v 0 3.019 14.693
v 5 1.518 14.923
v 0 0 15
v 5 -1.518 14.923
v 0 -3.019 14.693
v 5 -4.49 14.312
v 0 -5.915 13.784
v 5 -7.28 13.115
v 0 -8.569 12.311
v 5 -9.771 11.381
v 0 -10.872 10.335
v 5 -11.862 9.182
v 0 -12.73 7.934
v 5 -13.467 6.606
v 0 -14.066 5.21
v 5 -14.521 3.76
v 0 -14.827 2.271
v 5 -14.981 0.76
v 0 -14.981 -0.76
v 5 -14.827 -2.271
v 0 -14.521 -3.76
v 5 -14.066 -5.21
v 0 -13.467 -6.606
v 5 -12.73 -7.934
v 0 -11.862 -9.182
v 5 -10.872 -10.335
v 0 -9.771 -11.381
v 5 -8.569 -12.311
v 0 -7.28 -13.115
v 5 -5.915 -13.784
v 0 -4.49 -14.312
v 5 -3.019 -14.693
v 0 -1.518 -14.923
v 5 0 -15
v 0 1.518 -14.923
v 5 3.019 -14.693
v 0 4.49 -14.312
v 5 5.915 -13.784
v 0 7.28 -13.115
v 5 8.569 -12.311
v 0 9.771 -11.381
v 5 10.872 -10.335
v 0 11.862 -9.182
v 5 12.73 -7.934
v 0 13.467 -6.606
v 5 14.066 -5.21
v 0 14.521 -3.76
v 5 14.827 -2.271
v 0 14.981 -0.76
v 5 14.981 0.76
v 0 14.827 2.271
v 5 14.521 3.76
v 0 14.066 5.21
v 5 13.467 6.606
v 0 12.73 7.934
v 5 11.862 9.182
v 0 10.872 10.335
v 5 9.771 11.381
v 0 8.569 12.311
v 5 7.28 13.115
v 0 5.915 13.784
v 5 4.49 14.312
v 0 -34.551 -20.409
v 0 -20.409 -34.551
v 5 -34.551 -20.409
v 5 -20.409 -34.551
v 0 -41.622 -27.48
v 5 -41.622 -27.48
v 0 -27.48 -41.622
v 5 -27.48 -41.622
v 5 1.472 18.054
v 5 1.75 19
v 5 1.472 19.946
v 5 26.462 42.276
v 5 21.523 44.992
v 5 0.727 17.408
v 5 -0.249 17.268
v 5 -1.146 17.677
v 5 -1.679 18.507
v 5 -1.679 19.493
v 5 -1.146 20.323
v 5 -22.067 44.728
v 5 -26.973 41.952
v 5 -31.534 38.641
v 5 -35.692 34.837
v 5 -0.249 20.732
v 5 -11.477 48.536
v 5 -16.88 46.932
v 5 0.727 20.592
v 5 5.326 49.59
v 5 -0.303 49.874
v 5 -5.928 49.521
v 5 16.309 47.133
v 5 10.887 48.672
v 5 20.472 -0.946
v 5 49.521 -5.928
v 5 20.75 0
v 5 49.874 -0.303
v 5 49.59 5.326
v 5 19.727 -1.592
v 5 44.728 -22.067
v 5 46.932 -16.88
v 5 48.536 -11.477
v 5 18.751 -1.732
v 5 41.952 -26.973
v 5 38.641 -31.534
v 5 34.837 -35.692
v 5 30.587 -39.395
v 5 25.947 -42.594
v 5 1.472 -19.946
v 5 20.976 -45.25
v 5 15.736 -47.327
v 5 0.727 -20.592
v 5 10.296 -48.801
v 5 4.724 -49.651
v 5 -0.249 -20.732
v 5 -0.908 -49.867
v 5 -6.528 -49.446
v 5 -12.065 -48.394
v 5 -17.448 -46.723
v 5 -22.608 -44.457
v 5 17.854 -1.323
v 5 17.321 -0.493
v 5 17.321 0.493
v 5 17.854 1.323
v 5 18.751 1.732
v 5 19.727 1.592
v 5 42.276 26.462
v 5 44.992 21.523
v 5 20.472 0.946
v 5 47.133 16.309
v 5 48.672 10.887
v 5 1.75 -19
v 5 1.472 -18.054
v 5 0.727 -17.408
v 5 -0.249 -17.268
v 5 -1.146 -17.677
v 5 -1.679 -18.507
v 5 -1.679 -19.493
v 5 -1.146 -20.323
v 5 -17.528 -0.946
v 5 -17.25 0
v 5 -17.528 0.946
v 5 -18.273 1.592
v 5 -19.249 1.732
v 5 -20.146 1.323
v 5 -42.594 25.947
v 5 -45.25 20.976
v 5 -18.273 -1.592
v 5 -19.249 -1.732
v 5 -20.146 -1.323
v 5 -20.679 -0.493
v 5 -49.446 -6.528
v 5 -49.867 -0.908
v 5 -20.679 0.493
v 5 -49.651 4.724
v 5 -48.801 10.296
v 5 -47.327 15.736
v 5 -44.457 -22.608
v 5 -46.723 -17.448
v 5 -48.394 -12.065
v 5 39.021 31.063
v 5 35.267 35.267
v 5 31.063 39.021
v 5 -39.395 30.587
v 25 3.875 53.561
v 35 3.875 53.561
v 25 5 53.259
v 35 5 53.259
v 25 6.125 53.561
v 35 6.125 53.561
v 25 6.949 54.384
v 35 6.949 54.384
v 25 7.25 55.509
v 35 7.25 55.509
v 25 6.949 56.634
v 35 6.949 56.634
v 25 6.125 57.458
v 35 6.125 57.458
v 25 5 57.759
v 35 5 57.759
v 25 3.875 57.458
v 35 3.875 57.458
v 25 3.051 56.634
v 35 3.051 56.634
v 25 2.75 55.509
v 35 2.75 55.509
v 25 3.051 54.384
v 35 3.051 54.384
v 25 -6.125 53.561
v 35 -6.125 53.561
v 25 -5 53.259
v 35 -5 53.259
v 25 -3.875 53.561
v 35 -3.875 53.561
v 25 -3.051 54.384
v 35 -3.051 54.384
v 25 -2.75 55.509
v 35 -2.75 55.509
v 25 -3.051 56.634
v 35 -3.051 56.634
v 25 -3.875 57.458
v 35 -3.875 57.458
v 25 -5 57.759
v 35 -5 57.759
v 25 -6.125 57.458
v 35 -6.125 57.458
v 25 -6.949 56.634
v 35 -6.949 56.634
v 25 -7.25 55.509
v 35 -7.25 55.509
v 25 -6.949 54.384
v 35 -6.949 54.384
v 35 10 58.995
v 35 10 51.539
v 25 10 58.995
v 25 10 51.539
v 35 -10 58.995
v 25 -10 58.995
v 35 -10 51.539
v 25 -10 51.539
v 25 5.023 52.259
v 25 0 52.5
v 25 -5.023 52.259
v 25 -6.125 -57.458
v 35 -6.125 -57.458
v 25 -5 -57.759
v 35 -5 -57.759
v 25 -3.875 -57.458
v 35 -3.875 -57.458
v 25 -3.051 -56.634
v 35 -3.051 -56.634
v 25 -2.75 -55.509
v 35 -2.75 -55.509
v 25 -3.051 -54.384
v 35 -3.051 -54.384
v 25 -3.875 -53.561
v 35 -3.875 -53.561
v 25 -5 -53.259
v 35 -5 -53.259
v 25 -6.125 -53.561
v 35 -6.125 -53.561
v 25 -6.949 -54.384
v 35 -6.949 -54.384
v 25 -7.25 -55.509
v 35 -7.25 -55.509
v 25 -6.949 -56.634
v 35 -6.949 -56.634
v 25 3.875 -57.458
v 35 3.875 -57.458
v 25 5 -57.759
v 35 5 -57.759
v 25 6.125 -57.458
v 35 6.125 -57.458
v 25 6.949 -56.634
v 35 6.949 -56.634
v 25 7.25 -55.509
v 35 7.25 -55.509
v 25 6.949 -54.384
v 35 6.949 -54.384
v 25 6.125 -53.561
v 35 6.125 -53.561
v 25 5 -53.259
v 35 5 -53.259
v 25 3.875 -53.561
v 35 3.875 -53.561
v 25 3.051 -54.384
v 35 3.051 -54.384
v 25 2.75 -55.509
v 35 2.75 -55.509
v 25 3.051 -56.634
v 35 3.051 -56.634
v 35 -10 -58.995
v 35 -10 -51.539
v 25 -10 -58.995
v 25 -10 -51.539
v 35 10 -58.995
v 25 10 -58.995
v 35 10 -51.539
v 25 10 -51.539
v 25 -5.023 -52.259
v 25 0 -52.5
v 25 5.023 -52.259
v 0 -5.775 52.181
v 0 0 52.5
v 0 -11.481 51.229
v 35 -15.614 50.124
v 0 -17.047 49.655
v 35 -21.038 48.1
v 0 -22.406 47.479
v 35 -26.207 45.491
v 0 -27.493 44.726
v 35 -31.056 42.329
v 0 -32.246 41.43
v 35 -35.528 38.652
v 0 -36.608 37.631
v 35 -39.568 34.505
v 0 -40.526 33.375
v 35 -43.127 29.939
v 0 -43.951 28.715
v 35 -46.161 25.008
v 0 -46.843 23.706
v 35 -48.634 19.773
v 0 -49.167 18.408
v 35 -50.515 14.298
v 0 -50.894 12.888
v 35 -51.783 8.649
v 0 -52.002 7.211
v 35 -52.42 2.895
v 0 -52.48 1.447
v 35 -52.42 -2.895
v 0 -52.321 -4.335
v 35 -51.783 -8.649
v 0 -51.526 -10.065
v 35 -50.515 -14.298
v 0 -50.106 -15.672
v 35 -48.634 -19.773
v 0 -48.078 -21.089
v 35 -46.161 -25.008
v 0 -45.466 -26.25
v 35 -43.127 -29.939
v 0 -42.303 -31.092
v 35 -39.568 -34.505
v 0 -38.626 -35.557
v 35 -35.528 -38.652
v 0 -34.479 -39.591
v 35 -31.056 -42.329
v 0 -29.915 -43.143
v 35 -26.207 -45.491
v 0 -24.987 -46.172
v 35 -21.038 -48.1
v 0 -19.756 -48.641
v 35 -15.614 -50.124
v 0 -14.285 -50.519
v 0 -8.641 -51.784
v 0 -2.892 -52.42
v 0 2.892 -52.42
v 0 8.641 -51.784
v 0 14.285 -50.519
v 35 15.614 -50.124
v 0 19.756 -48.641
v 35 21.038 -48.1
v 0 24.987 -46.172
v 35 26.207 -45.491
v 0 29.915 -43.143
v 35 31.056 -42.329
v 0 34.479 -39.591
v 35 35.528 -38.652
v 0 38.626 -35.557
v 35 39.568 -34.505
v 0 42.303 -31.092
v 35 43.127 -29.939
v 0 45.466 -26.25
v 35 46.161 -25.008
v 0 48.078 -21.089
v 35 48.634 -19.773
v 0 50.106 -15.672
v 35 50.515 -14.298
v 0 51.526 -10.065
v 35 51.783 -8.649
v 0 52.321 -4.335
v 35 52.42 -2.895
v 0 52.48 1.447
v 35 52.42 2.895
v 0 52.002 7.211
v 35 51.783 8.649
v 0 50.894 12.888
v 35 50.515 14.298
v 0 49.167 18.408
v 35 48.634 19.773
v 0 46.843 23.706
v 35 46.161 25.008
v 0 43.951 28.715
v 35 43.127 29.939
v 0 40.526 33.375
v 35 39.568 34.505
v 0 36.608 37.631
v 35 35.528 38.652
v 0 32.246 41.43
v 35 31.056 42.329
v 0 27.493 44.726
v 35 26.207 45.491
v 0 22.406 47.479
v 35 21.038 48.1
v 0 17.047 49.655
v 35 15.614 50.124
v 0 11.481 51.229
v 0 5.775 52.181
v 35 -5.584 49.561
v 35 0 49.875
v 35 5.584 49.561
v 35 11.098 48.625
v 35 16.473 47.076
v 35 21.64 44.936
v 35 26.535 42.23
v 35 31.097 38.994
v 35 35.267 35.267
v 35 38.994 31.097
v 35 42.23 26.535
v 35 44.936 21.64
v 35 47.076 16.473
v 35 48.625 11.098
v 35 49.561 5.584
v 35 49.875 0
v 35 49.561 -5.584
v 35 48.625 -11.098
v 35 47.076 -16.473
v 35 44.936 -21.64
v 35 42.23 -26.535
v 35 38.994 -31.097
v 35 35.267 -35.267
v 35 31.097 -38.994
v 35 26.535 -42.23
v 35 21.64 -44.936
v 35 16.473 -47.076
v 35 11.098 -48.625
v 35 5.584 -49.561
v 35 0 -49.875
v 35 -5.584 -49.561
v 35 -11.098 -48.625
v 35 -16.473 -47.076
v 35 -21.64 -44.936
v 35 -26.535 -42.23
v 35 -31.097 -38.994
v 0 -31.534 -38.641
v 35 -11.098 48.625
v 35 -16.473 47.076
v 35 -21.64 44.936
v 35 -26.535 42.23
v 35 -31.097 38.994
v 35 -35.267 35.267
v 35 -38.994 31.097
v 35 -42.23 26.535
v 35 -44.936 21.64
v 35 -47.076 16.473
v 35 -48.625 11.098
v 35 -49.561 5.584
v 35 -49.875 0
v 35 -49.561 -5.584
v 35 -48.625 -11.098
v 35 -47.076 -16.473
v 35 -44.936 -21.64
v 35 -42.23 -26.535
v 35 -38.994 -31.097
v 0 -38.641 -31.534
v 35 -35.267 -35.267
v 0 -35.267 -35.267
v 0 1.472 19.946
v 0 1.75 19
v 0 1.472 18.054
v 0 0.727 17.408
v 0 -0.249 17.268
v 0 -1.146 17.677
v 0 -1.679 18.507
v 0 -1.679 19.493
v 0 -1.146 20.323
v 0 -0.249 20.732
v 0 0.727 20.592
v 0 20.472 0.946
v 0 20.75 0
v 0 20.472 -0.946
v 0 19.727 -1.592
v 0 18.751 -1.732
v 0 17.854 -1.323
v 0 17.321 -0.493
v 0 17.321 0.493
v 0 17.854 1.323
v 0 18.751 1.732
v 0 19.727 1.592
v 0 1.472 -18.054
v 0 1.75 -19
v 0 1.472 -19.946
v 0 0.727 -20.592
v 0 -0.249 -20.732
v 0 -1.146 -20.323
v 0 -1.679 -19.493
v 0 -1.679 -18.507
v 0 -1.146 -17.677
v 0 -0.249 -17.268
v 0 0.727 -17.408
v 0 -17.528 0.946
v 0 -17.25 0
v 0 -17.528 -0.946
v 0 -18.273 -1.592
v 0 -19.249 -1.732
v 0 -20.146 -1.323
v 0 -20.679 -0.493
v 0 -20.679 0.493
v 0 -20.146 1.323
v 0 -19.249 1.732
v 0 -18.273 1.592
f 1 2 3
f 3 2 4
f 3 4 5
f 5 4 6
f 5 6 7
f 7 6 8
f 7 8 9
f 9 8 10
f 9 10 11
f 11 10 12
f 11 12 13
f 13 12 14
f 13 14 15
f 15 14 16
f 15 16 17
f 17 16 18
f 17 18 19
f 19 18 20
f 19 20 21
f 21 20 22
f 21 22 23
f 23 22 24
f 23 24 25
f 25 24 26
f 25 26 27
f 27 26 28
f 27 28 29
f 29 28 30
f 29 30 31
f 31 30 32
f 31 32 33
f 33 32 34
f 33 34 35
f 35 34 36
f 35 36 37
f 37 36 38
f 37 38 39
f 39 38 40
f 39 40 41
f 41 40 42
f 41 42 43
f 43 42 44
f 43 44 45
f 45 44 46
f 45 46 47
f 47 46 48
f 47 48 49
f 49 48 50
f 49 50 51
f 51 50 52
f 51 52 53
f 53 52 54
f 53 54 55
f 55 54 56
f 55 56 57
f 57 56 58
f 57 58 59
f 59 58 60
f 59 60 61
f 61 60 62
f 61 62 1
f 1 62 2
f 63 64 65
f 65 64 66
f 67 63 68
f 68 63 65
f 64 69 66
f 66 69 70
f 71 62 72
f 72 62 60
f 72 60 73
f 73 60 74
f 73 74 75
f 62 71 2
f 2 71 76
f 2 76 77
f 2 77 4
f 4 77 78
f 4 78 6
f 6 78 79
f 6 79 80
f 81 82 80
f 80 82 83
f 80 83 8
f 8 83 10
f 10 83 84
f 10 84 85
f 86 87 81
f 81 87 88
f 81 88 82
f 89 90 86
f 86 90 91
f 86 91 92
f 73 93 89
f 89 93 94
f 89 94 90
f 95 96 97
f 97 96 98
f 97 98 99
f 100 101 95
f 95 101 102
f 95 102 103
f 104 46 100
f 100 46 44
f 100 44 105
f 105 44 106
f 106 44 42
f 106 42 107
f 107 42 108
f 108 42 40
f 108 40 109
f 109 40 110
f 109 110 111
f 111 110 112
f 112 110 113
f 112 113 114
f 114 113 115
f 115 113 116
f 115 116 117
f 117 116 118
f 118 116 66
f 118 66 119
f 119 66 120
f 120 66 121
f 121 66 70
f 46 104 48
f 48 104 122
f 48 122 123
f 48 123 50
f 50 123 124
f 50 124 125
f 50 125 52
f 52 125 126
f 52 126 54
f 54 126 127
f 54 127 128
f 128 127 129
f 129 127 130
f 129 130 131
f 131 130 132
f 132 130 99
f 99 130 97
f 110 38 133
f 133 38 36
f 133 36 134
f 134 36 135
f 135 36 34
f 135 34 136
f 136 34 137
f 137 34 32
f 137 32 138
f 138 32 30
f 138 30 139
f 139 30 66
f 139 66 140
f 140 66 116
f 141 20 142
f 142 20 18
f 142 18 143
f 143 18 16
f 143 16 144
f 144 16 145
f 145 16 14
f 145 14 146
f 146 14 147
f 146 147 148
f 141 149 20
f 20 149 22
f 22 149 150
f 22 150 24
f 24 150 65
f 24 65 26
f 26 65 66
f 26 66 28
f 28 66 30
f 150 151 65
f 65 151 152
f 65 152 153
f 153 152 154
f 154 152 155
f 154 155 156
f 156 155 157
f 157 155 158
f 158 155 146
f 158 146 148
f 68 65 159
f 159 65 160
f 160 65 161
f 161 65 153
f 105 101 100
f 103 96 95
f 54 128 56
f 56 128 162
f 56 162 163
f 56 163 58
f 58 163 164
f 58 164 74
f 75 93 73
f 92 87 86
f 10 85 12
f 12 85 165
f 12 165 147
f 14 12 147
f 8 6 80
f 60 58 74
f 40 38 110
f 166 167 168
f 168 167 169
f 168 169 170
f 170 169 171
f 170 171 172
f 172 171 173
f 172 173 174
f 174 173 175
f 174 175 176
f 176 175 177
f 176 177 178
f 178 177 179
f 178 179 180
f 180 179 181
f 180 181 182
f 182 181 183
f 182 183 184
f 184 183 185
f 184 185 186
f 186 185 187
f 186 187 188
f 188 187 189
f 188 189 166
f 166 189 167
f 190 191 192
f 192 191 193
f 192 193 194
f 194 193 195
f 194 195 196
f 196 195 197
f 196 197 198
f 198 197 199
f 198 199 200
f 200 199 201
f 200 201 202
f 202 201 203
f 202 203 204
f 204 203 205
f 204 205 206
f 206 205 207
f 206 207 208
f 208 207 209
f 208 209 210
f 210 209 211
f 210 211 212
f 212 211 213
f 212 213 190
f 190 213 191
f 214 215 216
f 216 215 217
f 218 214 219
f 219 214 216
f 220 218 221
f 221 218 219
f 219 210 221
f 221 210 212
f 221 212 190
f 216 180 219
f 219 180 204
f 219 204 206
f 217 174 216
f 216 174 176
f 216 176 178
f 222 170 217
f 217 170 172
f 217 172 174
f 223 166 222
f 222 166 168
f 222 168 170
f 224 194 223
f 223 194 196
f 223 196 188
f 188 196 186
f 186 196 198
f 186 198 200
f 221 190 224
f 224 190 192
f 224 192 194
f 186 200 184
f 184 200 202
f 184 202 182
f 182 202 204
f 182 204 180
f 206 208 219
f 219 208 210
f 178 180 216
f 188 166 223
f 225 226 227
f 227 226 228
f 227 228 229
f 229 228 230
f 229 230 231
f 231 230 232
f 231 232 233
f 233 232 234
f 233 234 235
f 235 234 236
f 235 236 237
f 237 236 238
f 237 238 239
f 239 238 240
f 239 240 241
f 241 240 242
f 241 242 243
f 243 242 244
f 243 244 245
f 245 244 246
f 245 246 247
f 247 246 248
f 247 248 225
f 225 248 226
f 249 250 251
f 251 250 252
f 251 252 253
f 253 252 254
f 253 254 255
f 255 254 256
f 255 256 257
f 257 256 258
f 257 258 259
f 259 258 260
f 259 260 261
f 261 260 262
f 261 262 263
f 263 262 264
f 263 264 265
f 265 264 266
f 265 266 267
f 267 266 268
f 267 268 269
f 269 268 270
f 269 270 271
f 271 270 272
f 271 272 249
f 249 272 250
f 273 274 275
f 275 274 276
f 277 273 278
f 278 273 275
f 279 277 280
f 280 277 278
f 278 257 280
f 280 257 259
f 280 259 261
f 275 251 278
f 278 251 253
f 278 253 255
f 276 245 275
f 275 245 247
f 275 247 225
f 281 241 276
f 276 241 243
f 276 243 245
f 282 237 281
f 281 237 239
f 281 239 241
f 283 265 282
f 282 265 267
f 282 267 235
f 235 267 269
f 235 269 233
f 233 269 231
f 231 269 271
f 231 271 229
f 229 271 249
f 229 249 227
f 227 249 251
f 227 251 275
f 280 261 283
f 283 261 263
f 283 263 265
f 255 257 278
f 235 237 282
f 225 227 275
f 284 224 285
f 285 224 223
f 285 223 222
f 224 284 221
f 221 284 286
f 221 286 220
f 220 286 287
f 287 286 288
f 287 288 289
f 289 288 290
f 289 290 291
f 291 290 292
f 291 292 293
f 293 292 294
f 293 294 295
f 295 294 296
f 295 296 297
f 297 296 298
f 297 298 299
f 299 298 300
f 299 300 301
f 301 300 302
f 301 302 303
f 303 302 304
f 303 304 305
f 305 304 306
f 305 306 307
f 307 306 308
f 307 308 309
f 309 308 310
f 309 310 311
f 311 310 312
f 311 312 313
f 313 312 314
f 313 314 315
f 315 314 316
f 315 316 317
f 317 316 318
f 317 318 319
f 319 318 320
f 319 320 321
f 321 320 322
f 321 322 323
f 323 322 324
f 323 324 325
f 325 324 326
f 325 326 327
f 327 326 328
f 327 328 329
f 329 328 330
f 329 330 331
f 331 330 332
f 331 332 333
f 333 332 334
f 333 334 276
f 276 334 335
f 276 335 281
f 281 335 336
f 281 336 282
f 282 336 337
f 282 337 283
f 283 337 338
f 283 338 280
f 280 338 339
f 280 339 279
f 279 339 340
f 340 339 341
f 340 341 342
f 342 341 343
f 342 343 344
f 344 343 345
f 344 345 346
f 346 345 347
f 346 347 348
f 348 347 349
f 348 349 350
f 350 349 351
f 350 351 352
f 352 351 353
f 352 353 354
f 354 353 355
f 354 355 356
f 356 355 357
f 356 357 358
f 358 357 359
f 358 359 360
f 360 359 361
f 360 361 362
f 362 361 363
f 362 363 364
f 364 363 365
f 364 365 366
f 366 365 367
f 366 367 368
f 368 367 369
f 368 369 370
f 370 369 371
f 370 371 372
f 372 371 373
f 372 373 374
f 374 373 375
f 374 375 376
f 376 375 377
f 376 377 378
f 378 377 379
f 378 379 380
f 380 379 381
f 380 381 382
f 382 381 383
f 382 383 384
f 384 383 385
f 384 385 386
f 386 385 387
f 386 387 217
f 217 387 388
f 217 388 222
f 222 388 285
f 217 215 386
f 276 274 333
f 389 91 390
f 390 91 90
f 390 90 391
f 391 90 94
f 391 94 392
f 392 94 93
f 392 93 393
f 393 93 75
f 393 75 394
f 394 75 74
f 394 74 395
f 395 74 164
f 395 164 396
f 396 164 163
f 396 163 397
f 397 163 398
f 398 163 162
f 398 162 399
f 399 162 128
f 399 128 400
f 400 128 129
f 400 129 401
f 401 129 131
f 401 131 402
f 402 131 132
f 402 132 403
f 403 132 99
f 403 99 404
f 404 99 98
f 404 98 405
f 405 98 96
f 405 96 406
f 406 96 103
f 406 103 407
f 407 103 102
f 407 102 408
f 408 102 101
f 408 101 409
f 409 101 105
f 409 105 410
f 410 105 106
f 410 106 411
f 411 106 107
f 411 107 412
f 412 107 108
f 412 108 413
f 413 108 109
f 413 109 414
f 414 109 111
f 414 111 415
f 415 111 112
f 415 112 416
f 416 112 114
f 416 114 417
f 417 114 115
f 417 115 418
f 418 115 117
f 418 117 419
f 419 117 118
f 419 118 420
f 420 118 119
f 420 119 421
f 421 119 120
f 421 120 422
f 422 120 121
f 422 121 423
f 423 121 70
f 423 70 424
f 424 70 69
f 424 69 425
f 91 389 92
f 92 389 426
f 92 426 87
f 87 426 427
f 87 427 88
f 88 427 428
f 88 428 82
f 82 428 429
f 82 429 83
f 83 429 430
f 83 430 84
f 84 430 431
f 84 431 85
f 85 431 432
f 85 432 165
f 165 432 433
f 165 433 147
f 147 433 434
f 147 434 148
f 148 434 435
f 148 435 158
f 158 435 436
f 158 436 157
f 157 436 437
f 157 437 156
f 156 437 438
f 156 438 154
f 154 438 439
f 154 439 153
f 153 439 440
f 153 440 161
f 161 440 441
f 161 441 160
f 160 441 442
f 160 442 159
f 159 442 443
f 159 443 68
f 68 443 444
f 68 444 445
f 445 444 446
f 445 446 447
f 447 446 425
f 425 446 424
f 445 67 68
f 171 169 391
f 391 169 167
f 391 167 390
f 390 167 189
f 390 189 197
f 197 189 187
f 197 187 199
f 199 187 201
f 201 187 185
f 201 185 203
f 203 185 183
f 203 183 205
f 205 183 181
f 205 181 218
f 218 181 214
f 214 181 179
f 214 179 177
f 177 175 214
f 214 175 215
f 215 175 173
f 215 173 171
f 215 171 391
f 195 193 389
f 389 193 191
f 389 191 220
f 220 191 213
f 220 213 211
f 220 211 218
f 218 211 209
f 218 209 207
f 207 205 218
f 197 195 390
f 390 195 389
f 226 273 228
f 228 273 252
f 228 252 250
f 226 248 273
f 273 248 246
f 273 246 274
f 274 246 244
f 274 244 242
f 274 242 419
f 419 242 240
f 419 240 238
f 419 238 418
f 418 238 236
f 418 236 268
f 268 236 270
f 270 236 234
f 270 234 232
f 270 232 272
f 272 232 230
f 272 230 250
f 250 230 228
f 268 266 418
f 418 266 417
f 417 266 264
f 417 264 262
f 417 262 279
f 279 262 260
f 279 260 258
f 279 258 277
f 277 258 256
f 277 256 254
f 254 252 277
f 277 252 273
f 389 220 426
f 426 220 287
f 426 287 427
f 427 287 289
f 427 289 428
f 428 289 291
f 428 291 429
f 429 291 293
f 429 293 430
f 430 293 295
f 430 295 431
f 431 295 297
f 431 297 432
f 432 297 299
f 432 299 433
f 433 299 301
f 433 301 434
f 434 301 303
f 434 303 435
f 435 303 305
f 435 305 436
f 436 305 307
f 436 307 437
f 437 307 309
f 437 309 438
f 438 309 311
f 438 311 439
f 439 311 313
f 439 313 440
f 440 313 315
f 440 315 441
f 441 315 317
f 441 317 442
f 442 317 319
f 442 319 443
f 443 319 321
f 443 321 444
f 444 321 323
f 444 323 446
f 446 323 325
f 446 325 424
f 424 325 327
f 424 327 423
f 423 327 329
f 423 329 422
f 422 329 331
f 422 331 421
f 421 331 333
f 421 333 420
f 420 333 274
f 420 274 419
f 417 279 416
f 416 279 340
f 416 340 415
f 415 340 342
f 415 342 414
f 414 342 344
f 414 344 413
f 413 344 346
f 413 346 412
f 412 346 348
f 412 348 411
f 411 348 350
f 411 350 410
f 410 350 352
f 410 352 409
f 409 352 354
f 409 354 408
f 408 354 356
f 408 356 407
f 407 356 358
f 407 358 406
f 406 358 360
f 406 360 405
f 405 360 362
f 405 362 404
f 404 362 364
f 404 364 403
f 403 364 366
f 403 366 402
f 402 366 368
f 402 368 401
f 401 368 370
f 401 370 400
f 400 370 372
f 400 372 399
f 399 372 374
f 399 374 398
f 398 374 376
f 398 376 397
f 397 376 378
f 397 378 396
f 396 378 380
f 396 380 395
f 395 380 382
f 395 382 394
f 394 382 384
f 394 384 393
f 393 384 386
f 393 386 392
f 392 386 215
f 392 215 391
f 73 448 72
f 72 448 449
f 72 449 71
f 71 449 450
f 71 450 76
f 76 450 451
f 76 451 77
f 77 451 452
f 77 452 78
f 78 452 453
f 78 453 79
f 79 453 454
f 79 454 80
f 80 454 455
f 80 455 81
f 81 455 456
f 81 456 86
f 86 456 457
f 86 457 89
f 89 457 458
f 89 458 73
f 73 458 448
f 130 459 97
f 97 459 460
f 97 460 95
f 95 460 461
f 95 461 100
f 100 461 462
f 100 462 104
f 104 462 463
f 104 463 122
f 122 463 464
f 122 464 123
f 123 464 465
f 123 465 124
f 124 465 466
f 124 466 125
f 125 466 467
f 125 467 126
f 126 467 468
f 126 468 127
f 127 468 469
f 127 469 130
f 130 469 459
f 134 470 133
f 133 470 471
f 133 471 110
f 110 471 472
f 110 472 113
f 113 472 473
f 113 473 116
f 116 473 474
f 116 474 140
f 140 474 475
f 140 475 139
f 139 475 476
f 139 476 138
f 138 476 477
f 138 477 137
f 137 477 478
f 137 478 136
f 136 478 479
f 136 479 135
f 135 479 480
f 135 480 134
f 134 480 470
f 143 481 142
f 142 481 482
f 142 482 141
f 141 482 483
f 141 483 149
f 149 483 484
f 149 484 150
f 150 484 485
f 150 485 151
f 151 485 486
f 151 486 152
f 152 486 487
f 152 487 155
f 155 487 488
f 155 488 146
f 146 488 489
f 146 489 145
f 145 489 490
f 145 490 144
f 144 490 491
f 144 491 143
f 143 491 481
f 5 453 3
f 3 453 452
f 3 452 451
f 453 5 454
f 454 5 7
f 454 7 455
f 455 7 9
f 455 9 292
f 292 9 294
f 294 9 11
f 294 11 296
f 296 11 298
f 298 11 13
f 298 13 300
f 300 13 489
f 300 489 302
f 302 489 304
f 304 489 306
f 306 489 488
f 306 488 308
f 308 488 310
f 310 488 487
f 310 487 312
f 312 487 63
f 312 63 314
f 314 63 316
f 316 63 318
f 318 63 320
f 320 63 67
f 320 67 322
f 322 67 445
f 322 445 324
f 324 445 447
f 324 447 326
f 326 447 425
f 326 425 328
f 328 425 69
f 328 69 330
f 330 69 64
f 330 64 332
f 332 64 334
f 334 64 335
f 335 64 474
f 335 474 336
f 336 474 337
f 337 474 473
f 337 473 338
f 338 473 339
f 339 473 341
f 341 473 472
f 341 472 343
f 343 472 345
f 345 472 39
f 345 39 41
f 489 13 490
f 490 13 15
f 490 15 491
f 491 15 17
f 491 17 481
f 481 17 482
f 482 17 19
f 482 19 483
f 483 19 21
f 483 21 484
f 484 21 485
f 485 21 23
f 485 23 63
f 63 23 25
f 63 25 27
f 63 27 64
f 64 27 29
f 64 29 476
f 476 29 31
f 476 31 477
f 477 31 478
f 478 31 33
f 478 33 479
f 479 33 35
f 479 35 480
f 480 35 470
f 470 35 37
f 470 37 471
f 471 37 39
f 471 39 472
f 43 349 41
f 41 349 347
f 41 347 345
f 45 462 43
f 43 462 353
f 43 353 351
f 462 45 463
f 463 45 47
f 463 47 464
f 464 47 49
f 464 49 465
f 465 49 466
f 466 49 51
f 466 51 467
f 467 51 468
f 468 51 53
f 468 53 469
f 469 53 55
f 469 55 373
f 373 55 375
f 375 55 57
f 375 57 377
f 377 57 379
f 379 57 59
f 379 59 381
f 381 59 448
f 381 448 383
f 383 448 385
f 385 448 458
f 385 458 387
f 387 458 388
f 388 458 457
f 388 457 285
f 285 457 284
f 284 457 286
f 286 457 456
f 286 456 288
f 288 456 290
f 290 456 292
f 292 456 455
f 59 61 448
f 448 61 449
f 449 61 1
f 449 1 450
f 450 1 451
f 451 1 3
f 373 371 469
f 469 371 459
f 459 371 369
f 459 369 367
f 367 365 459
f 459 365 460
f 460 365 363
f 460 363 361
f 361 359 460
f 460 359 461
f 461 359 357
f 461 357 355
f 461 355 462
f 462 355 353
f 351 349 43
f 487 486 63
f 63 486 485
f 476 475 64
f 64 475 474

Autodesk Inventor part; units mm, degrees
ref_plane "YZ Plane" through (0, 0, 0) normal (1, 0, 0) x (0, 1, 0)
ref_plane "XZ Plane" through (0, 0, 0) normal (0, 1, 0) x (-1, 0, 0)
ref_plane "XY Plane" through (0, 0, 0) normal (0, 0, 1) x (1, 0, 0)
sketch "Sketch1" plane through (0, 0, 0) normal (1, 0, 0) x (0, 1, 0)
  circle A0 centre (0, 0) radius 19
  circle A1 centre (0, -19) radius 1.75
  circle A2 centre (19, 0) radius 1.75
  circle A3 centre (0, 19) radius 1.75
  circle A4 centre (-19, 0) radius 1.75
  circle A5 centre (0, 0) radius 52.5
  circle A6 centre (0, 0) radius 40
  dimension "d0" = 38
  dimension "d1" = 3.5
  dimension "d4" = 360
  dimension "d6" = 105
  dimension "d7" = 80
extrude "Extrusion1" add sketch "Sketch1" along normal blind 5 contours A2 A0 A1 A4 A3 | A5 | A6
sketch "Sketch2" plane through (0, 0, 0) normal (-1, 0, 0) x (0, 0, 1)
  circle A0 centre (0, 0) radius 52.5
  circle A1 centre (0, 0) radius 49.875
  dimension "d10" = 105
extrude "Extrusion2" add sketch "Sketch2" against normal blind 35
sketch "Sketch3" plane through (35, 0, 0) normal (1, 0, 0) x (0, 0, -1)
  circle A0 centre (0, 0) radius 52.5
  circle A1 centre (0, 0) radius 47.5 projected
  line L0 (-48.9952, 10) -> (-58.9952, 10)
  line L1 (-58.9952, 10) -> (-58.9952, -10)
  line L2 (-58.9952, -10) -> (-51.5388, -10)
  line L3 (-48.9952, 10) -> (-51.5388, 10)
  line L4 (-47.5, 0) -> (-55.5093, 0)
  line L5 (-55.5093, 0) -> (-55.5093, 5)
  circle A2 centre (-55.5093, 5) radius 2.25
  line L6 (-55.5093, 0) -> (-55.5093, -5)
  circle A3 centre (-55.5093, -5) radius 2.25
  line L7 (48.9952, -10) -> (58.9952, -10)
  line L8 (58.9952, -10) -> (58.9952, 10)
  line L9 (58.9952, 10) -> (51.5388, 10)
  line L10 (48.9952, -10) -> (51.5388, -10)
  line L11 (47.5, 0) -> (55.5093, 0)
  line L12 (55.5093, 0) -> (55.5093, -5)
  circle A4 centre (55.5093, -5) radius 2.25
  line L13 (55.5093, 0) -> (55.5093, 5)
  circle A5 centre (55.5093, 5) radius 2.25
  point P0 (51.5388, -10)
  point P1 (47.2562, -4.8066)
  point P2 (47.2562, 4.8066)
  point P3 (51.5388, -10)
  point P4 (-47.2562, 4.8066)
  point P5 (-47.2562, -4.8066)
  dimension "d14" = 10
  dimension "d15" = 20
  dimension "d17" = 5
  dimension "d18" = 4.5
  dimension "d19" = 5
  dimension "d20" = 4.5
  dimension "d23" = 360
  dimension "d33" = 105
extrude "Extrusion3" add sketch "Sketch3" against normal blind 10 contours A0 L9 L8 L7 | A0 L2 L1 L0
sketch "Sketch4" plane through (5, 0, 0) normal (1, 0, 0) x (0, 0, -1)
  circle A0 centre (0, 0) radius 15
  line L0 (0, 0) -> (7.0711, 7.0711)
  line L1 (0, 0) -> (10, 0) construction
  line L2 (7.0711, 7.0711) -> (41.6219, -27.4797)
  circle A1 centre (0, 0) radius 49.875 projected
  line L3 (0, 0) -> (-7.0711, -7.0711)
  line L4 (-7.0711, -7.0711) -> (27.4797, -41.6219)
  line L5 (41.6219, -27.4797) -> (34.5508, -20.4087)
  line L6 (34.5508, -20.4087) -> (20.4087, -34.5508)
  point P0 (0.8346, -14.9768)
  point P1 (14.9768, -0.8346)
  point P2 (48.8622, 10)
  point P3 (-48.8622, 10)
  dimension "d27" = 30
  dimension "d28" = 10
  dimension "d29" = 45
  dimension "d30" = 10
  dimension "d34" = 10
extrude "Extrusion4" cut sketch "Sketch4" against normal blind 10 contours A0 L2 L0 L3 L4 | L4 L3 L0 L2 A0 | L6 L2 A1 L4
equation "\"BendRadius\" = Thickness"
equation "\"BendReliefWidth\" = Thickness"
equation "\"BendReliefDepth\" = 0.5 * Thickness"
equation "\"CornerReliefSize\" = 4 * Thickness"
equation "\"MinimumRemnant\" = 2 * Thickness"
equation "\"TransitionRadius\" = BendRadius"
equation "\"JacobiRadiusSize\" = BendRadius"
equation "\"GapSize\" = Thickness"
equation "\"Thickness\" = 0.5"
properties part number "MotorHouse"
